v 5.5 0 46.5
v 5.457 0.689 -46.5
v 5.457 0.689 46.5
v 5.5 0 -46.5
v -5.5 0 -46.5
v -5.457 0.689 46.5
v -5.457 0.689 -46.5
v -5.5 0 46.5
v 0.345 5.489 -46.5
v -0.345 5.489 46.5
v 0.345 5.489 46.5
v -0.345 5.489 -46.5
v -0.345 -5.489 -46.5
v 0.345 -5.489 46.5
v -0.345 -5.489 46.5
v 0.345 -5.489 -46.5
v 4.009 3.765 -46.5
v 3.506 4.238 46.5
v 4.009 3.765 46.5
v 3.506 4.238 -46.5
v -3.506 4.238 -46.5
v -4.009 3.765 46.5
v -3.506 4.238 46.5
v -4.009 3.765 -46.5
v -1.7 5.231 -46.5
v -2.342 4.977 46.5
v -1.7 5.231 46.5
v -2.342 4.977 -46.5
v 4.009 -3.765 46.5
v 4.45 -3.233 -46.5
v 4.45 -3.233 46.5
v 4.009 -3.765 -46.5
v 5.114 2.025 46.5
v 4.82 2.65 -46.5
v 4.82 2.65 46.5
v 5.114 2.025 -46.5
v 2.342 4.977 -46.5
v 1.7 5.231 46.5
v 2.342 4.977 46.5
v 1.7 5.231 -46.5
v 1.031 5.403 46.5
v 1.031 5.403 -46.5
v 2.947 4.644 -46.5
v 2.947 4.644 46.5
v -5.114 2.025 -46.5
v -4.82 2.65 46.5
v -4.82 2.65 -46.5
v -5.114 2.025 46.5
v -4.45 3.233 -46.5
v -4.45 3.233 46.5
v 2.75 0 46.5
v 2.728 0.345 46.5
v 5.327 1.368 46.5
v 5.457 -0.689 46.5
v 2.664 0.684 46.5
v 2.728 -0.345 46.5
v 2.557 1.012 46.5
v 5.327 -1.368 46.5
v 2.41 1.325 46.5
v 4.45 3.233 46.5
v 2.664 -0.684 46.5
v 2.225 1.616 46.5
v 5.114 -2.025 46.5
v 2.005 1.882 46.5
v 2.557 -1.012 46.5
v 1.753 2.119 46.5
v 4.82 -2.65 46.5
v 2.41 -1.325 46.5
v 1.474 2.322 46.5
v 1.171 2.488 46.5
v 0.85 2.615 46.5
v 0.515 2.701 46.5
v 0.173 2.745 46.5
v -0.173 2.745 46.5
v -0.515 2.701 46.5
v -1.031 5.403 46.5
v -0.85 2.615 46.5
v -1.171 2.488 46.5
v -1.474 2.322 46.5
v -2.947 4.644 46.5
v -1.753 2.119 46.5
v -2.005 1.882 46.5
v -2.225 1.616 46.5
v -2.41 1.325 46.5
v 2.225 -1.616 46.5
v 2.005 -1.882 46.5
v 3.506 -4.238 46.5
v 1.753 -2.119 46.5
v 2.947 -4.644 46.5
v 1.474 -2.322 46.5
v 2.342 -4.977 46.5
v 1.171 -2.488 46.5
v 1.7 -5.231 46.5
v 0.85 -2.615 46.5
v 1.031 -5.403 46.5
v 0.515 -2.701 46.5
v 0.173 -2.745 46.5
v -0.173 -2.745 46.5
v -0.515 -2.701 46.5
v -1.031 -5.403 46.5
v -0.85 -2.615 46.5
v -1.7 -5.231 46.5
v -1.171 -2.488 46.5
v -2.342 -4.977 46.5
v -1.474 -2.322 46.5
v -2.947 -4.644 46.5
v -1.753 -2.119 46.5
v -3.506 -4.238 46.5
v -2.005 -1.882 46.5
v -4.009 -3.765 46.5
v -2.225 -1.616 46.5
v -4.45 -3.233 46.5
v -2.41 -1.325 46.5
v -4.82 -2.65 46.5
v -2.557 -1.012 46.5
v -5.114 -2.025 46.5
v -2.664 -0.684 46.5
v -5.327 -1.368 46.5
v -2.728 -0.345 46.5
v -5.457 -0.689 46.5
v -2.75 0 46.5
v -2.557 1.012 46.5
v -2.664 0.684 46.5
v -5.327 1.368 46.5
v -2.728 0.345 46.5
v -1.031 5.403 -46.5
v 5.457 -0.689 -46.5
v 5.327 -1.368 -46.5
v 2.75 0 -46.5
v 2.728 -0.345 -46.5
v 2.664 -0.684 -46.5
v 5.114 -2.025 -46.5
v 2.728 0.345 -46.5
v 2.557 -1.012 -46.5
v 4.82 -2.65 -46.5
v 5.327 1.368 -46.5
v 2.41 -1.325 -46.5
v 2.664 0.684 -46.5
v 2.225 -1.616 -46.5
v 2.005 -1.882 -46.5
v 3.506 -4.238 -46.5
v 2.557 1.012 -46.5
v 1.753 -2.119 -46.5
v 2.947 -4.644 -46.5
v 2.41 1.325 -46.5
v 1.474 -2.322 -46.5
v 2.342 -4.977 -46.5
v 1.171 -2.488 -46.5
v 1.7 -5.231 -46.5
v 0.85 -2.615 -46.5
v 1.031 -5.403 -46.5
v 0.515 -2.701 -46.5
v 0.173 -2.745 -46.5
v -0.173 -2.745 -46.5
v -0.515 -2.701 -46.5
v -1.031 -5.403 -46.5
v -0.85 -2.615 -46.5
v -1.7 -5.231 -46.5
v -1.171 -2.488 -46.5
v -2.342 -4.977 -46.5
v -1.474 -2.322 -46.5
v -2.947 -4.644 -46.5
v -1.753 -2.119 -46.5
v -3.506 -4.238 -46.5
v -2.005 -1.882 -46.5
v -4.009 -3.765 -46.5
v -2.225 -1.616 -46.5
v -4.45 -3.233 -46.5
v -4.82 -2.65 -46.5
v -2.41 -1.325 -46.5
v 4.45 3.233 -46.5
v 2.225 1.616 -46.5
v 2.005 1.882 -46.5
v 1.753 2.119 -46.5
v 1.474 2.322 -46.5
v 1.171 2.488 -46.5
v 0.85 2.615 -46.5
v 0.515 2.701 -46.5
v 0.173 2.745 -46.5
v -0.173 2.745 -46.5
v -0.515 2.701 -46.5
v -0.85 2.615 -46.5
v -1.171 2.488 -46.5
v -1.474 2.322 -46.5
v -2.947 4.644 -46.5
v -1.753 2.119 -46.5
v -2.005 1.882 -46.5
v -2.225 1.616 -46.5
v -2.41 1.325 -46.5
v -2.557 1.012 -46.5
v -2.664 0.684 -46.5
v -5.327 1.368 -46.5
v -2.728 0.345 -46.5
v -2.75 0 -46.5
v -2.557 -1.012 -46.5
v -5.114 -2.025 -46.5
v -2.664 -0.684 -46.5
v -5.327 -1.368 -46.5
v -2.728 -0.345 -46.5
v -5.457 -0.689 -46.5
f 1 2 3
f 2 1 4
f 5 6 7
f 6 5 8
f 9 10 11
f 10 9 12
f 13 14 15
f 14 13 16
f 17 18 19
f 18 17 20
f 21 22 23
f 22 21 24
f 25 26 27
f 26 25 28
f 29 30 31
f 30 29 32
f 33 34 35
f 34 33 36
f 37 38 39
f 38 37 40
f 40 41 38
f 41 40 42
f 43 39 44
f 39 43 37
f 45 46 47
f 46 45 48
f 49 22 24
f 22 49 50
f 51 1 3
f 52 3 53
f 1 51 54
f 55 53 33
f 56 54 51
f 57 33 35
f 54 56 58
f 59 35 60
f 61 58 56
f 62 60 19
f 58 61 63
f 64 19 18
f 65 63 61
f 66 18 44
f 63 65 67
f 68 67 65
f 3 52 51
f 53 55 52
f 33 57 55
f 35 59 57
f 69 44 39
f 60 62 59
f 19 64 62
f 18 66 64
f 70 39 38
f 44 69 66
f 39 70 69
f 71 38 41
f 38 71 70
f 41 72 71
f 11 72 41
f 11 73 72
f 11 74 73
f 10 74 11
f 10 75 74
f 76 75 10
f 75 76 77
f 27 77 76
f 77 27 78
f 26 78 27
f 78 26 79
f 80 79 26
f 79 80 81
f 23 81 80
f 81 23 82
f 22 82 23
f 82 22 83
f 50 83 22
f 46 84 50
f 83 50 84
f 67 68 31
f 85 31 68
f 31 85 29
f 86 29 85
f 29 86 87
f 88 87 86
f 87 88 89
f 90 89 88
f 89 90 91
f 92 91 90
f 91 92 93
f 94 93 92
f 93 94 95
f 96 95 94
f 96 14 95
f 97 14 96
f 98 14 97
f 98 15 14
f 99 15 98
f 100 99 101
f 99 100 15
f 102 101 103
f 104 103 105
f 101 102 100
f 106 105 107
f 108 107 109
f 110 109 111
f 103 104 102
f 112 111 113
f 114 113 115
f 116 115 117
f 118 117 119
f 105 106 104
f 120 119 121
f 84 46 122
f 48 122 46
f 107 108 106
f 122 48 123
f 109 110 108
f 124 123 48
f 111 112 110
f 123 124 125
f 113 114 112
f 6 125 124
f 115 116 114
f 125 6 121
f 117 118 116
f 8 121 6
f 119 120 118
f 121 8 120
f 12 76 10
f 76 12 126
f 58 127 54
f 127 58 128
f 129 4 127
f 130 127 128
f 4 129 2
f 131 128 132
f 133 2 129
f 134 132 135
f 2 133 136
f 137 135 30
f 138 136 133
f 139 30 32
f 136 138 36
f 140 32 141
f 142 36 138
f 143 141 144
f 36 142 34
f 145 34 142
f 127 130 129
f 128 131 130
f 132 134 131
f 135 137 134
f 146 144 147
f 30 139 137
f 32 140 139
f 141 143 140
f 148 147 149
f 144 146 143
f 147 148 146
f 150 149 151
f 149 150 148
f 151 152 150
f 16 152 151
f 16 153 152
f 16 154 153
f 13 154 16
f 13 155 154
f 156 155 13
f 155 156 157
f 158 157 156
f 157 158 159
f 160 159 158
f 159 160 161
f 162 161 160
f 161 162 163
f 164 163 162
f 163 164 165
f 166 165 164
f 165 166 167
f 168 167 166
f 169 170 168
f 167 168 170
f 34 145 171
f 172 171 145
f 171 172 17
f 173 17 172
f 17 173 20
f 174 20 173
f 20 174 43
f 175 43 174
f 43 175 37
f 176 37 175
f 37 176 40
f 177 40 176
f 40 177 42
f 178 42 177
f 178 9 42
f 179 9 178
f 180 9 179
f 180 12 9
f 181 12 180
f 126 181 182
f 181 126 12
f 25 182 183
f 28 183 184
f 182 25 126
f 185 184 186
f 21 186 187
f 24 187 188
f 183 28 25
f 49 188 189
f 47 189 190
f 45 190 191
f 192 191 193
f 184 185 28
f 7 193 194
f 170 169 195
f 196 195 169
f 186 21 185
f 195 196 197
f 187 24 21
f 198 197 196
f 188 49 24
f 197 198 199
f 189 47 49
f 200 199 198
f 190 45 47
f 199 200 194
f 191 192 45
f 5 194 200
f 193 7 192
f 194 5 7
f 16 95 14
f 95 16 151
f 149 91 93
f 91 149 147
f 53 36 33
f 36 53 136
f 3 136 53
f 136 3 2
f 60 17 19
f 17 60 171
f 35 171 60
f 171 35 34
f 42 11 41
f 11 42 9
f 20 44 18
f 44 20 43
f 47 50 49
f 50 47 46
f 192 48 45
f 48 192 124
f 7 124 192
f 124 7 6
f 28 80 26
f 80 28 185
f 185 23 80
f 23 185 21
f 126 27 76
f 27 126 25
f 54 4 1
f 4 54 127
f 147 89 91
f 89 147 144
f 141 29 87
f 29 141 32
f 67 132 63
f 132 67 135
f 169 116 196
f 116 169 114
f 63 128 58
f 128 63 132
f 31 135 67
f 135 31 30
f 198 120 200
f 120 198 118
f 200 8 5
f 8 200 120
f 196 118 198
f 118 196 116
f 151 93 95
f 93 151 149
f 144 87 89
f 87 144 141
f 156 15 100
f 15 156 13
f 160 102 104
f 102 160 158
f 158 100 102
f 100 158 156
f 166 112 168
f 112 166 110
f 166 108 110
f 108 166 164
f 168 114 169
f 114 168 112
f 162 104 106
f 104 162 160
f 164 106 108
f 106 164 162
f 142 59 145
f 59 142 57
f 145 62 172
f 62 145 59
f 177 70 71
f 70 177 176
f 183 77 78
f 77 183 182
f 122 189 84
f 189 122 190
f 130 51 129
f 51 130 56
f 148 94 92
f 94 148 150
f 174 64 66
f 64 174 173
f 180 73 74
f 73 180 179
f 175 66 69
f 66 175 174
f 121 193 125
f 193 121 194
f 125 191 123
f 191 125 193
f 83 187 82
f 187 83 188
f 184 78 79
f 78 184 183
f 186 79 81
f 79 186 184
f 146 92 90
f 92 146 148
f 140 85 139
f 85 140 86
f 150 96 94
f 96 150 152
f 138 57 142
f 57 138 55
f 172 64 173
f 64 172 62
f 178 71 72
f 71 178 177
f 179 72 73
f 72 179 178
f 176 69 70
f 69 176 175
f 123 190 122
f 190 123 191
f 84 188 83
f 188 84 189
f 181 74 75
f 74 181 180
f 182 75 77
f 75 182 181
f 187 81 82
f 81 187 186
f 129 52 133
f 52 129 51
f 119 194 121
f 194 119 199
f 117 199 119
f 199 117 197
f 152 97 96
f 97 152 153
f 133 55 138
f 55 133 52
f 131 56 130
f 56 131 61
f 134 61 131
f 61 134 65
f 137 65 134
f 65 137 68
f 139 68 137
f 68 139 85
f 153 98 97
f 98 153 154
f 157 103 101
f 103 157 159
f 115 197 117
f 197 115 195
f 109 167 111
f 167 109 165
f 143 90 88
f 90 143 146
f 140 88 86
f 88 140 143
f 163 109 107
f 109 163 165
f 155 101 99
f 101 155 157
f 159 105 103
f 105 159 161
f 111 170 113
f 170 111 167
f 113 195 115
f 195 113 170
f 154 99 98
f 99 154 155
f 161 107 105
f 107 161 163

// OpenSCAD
$fn = 50;


difference() {
	union() {
		translate(v = [0, 0, -46.5000000000]) {
			cylinder(h = 93, r = 5.5000000000);
		}
	}
	union() {
		translate(v = [0, 0, -100.0000000000]) {
			cylinder(h = 200, r = 2.7500000000);
		}
	}
}
